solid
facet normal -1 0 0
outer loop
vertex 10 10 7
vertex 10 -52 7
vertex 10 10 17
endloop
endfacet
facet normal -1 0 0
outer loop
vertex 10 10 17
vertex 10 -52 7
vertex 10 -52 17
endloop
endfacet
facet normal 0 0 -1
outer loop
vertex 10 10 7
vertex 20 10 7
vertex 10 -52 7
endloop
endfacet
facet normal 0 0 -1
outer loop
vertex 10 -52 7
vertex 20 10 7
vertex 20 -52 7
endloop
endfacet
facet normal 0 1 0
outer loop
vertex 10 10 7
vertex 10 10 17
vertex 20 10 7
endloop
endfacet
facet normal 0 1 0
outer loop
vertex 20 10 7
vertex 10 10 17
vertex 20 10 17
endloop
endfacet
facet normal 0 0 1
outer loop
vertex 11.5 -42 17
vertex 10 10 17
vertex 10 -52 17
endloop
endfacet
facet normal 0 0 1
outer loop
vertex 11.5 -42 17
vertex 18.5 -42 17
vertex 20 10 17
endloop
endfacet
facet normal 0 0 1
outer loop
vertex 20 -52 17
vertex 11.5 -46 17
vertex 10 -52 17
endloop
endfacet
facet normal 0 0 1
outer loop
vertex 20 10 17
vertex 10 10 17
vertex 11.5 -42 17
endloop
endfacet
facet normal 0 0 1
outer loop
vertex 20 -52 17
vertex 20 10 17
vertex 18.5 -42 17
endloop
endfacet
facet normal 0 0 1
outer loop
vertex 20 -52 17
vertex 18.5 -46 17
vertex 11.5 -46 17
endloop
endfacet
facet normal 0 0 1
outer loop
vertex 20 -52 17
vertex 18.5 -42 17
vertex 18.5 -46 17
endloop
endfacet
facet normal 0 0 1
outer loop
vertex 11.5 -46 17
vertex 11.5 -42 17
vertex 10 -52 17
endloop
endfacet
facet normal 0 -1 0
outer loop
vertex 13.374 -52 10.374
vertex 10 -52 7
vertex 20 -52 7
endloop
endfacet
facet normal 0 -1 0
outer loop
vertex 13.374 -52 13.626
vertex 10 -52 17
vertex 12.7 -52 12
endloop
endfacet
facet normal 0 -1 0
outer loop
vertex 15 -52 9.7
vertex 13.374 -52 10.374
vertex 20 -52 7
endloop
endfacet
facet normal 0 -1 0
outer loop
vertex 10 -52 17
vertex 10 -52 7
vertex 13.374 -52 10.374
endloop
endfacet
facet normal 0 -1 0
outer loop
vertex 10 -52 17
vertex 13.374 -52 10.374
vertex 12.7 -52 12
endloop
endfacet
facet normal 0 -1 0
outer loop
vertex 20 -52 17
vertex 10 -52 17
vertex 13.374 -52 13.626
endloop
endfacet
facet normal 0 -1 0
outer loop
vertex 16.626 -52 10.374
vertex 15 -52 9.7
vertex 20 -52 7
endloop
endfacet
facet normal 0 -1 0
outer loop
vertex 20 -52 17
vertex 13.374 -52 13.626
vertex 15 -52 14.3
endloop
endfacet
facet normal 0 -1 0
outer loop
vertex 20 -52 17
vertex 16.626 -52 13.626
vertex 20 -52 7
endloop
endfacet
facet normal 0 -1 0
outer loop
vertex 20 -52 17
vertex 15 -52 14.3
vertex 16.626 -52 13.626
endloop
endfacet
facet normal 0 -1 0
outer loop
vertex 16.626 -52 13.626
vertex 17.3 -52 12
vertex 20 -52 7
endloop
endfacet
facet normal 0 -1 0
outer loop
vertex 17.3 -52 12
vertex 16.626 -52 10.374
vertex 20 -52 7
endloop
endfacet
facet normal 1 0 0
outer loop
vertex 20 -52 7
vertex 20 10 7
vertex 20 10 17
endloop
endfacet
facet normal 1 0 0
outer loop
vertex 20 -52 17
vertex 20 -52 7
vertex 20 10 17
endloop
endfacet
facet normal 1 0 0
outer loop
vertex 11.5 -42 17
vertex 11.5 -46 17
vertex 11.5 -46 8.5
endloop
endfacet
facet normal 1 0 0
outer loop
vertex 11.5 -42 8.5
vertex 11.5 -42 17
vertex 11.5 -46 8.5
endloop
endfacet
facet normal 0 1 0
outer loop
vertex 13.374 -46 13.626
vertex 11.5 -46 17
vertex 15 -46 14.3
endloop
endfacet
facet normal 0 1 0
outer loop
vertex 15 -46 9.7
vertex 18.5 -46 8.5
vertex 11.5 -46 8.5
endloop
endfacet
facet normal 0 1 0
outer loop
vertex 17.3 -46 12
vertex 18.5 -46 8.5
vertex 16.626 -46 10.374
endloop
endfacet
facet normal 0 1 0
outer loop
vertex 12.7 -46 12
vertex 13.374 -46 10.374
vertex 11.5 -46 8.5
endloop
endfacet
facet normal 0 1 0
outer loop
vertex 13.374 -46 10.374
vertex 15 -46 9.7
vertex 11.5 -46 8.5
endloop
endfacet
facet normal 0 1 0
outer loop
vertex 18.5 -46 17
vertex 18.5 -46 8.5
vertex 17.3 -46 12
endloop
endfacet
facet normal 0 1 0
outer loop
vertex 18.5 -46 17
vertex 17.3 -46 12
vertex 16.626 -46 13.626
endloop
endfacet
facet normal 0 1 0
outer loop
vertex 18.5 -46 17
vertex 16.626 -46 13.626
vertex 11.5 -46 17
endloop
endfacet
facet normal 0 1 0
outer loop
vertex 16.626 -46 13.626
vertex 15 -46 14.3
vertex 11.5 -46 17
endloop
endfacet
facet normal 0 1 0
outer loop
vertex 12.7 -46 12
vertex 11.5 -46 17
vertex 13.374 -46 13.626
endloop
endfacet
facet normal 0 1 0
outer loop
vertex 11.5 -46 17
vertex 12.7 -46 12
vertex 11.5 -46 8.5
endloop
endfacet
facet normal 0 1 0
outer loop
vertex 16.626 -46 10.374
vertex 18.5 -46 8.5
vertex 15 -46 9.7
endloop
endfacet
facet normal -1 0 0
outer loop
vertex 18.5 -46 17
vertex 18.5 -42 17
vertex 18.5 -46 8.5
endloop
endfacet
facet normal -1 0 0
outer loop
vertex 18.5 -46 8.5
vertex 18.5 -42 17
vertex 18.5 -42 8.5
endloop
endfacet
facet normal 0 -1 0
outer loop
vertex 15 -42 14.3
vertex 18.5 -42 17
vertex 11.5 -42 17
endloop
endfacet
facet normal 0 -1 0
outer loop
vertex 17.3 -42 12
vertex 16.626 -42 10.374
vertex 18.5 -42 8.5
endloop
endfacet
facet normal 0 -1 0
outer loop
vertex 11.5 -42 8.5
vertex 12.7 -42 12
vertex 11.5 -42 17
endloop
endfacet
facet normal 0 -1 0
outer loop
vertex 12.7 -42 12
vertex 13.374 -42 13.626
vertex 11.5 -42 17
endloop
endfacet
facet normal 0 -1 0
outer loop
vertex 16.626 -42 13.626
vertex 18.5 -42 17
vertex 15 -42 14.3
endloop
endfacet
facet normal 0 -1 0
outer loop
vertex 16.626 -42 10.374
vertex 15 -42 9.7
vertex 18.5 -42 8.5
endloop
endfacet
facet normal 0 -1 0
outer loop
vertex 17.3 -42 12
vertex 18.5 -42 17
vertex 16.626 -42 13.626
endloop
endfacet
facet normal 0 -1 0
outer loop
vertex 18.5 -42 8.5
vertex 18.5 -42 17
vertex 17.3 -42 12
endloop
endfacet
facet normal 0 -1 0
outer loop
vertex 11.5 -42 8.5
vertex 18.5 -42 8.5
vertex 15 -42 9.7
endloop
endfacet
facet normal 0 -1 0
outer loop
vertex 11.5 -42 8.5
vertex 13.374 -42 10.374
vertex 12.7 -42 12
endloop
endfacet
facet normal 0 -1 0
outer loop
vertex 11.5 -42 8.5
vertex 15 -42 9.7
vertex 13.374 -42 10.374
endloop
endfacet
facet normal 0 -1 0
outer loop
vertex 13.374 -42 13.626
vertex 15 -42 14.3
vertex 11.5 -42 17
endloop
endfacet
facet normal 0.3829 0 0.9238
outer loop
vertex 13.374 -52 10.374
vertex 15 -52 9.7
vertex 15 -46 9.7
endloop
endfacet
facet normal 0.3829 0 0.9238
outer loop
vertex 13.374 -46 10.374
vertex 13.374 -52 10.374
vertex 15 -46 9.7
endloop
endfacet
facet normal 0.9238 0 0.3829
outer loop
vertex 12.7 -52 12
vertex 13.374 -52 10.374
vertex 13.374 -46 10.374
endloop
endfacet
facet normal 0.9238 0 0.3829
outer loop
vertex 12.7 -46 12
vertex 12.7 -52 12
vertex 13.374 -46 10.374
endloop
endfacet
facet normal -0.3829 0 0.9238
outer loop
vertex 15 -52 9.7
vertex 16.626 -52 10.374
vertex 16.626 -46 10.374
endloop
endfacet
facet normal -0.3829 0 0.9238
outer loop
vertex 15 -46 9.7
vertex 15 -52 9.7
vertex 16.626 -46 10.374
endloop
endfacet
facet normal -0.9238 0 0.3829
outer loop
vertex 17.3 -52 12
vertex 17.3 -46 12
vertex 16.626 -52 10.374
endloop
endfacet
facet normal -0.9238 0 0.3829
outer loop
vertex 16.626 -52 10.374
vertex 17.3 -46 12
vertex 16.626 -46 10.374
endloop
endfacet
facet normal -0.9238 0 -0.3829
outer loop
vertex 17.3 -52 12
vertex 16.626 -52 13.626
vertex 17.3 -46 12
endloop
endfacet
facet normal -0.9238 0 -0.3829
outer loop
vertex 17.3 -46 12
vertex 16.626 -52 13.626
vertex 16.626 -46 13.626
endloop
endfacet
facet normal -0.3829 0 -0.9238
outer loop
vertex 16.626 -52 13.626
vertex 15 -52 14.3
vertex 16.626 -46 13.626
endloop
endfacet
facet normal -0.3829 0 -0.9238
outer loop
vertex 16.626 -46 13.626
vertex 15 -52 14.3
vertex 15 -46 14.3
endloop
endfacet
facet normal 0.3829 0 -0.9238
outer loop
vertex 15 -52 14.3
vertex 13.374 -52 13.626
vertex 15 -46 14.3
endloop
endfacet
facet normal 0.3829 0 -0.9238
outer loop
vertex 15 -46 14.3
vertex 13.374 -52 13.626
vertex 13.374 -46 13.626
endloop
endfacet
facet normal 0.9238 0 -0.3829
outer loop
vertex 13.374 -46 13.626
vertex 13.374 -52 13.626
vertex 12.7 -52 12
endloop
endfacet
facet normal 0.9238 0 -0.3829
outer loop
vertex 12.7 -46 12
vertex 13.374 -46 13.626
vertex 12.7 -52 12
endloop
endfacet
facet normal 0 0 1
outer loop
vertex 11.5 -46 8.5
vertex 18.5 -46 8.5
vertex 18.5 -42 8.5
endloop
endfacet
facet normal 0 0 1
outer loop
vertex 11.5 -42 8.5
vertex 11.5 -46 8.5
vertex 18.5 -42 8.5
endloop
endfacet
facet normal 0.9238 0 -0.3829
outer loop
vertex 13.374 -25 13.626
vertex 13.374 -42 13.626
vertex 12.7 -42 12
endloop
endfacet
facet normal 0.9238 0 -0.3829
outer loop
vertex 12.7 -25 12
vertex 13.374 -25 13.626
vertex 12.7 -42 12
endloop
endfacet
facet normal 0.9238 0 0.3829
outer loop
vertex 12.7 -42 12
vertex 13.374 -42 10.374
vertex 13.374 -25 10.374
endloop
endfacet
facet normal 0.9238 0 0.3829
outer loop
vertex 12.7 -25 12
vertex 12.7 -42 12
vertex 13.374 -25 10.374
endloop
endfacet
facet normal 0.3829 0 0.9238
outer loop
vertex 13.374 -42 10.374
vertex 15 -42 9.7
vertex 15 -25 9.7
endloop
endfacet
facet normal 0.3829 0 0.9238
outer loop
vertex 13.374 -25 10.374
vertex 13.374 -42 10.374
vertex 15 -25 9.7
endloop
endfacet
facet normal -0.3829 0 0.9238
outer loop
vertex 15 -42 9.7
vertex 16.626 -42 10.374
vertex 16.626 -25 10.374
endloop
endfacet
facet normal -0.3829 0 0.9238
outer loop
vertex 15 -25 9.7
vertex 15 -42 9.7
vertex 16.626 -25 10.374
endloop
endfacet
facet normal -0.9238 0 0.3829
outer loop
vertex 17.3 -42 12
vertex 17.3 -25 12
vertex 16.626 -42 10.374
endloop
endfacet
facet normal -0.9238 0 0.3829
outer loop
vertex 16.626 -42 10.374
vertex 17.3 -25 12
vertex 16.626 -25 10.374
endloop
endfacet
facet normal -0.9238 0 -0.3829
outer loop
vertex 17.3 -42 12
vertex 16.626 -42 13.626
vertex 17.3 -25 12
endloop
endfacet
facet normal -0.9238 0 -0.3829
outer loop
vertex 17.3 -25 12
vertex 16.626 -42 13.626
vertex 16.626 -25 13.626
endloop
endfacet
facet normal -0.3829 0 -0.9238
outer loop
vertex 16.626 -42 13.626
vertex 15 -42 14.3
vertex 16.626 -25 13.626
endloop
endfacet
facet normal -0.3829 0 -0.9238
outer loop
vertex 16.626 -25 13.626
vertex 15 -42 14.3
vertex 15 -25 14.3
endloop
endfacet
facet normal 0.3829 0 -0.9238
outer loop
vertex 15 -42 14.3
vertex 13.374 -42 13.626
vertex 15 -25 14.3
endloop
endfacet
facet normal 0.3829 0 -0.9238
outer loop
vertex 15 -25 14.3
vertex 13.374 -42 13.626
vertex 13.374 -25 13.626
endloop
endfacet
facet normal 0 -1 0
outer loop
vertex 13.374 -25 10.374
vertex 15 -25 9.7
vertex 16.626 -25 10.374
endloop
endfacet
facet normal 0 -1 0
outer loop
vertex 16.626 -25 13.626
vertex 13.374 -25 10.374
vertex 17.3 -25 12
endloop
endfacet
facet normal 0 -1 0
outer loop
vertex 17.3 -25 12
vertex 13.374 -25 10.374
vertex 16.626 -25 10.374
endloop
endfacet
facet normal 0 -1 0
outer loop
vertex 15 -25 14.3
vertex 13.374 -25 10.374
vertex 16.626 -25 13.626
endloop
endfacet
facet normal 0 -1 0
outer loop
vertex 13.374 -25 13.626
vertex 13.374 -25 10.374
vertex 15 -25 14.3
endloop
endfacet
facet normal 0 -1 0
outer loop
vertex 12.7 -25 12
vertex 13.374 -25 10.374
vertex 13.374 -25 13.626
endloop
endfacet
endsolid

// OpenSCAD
dist_cent=45;

rotate([90,0,0])
difference(){

//Pieza móvil
translate([30/2-10/2,7,-10])
cube([10,10,62]);

union(){
//Pasante vertical
translate([30/2,7+10/2,25])
cylinder(r=2.3,h=30);
//Cajera tuerca
translate([30/2-7/2,8.5,42])
cube([7,10,4]); 
}

}




//
//union(){
//cube([30,7,dist_cent]);
//
////Caja
//translate([30/2-16/2,7,0])
//cube([16,13,dist_cent-15]);
//translate([0,7,dist_cent/2-4])
//cube([30,13,8]);
//
////Soporte tuerca
//translate([30/2-15/2,7,dist_cent-4])
//cube([15,13,4]);
//
//}
//
//union(){
//
//
////agujeros tornillos
//translate([15/2,50,dist_cent/2])
//rotate([90,0,0])
//cylinder(r=2.2,h=500);
//
//translate([30-15/2,50,dist_cent/2])
//rotate([90,0,0])
//cylinder(r=2.2,h=500);
//
//
//
//}
//}
